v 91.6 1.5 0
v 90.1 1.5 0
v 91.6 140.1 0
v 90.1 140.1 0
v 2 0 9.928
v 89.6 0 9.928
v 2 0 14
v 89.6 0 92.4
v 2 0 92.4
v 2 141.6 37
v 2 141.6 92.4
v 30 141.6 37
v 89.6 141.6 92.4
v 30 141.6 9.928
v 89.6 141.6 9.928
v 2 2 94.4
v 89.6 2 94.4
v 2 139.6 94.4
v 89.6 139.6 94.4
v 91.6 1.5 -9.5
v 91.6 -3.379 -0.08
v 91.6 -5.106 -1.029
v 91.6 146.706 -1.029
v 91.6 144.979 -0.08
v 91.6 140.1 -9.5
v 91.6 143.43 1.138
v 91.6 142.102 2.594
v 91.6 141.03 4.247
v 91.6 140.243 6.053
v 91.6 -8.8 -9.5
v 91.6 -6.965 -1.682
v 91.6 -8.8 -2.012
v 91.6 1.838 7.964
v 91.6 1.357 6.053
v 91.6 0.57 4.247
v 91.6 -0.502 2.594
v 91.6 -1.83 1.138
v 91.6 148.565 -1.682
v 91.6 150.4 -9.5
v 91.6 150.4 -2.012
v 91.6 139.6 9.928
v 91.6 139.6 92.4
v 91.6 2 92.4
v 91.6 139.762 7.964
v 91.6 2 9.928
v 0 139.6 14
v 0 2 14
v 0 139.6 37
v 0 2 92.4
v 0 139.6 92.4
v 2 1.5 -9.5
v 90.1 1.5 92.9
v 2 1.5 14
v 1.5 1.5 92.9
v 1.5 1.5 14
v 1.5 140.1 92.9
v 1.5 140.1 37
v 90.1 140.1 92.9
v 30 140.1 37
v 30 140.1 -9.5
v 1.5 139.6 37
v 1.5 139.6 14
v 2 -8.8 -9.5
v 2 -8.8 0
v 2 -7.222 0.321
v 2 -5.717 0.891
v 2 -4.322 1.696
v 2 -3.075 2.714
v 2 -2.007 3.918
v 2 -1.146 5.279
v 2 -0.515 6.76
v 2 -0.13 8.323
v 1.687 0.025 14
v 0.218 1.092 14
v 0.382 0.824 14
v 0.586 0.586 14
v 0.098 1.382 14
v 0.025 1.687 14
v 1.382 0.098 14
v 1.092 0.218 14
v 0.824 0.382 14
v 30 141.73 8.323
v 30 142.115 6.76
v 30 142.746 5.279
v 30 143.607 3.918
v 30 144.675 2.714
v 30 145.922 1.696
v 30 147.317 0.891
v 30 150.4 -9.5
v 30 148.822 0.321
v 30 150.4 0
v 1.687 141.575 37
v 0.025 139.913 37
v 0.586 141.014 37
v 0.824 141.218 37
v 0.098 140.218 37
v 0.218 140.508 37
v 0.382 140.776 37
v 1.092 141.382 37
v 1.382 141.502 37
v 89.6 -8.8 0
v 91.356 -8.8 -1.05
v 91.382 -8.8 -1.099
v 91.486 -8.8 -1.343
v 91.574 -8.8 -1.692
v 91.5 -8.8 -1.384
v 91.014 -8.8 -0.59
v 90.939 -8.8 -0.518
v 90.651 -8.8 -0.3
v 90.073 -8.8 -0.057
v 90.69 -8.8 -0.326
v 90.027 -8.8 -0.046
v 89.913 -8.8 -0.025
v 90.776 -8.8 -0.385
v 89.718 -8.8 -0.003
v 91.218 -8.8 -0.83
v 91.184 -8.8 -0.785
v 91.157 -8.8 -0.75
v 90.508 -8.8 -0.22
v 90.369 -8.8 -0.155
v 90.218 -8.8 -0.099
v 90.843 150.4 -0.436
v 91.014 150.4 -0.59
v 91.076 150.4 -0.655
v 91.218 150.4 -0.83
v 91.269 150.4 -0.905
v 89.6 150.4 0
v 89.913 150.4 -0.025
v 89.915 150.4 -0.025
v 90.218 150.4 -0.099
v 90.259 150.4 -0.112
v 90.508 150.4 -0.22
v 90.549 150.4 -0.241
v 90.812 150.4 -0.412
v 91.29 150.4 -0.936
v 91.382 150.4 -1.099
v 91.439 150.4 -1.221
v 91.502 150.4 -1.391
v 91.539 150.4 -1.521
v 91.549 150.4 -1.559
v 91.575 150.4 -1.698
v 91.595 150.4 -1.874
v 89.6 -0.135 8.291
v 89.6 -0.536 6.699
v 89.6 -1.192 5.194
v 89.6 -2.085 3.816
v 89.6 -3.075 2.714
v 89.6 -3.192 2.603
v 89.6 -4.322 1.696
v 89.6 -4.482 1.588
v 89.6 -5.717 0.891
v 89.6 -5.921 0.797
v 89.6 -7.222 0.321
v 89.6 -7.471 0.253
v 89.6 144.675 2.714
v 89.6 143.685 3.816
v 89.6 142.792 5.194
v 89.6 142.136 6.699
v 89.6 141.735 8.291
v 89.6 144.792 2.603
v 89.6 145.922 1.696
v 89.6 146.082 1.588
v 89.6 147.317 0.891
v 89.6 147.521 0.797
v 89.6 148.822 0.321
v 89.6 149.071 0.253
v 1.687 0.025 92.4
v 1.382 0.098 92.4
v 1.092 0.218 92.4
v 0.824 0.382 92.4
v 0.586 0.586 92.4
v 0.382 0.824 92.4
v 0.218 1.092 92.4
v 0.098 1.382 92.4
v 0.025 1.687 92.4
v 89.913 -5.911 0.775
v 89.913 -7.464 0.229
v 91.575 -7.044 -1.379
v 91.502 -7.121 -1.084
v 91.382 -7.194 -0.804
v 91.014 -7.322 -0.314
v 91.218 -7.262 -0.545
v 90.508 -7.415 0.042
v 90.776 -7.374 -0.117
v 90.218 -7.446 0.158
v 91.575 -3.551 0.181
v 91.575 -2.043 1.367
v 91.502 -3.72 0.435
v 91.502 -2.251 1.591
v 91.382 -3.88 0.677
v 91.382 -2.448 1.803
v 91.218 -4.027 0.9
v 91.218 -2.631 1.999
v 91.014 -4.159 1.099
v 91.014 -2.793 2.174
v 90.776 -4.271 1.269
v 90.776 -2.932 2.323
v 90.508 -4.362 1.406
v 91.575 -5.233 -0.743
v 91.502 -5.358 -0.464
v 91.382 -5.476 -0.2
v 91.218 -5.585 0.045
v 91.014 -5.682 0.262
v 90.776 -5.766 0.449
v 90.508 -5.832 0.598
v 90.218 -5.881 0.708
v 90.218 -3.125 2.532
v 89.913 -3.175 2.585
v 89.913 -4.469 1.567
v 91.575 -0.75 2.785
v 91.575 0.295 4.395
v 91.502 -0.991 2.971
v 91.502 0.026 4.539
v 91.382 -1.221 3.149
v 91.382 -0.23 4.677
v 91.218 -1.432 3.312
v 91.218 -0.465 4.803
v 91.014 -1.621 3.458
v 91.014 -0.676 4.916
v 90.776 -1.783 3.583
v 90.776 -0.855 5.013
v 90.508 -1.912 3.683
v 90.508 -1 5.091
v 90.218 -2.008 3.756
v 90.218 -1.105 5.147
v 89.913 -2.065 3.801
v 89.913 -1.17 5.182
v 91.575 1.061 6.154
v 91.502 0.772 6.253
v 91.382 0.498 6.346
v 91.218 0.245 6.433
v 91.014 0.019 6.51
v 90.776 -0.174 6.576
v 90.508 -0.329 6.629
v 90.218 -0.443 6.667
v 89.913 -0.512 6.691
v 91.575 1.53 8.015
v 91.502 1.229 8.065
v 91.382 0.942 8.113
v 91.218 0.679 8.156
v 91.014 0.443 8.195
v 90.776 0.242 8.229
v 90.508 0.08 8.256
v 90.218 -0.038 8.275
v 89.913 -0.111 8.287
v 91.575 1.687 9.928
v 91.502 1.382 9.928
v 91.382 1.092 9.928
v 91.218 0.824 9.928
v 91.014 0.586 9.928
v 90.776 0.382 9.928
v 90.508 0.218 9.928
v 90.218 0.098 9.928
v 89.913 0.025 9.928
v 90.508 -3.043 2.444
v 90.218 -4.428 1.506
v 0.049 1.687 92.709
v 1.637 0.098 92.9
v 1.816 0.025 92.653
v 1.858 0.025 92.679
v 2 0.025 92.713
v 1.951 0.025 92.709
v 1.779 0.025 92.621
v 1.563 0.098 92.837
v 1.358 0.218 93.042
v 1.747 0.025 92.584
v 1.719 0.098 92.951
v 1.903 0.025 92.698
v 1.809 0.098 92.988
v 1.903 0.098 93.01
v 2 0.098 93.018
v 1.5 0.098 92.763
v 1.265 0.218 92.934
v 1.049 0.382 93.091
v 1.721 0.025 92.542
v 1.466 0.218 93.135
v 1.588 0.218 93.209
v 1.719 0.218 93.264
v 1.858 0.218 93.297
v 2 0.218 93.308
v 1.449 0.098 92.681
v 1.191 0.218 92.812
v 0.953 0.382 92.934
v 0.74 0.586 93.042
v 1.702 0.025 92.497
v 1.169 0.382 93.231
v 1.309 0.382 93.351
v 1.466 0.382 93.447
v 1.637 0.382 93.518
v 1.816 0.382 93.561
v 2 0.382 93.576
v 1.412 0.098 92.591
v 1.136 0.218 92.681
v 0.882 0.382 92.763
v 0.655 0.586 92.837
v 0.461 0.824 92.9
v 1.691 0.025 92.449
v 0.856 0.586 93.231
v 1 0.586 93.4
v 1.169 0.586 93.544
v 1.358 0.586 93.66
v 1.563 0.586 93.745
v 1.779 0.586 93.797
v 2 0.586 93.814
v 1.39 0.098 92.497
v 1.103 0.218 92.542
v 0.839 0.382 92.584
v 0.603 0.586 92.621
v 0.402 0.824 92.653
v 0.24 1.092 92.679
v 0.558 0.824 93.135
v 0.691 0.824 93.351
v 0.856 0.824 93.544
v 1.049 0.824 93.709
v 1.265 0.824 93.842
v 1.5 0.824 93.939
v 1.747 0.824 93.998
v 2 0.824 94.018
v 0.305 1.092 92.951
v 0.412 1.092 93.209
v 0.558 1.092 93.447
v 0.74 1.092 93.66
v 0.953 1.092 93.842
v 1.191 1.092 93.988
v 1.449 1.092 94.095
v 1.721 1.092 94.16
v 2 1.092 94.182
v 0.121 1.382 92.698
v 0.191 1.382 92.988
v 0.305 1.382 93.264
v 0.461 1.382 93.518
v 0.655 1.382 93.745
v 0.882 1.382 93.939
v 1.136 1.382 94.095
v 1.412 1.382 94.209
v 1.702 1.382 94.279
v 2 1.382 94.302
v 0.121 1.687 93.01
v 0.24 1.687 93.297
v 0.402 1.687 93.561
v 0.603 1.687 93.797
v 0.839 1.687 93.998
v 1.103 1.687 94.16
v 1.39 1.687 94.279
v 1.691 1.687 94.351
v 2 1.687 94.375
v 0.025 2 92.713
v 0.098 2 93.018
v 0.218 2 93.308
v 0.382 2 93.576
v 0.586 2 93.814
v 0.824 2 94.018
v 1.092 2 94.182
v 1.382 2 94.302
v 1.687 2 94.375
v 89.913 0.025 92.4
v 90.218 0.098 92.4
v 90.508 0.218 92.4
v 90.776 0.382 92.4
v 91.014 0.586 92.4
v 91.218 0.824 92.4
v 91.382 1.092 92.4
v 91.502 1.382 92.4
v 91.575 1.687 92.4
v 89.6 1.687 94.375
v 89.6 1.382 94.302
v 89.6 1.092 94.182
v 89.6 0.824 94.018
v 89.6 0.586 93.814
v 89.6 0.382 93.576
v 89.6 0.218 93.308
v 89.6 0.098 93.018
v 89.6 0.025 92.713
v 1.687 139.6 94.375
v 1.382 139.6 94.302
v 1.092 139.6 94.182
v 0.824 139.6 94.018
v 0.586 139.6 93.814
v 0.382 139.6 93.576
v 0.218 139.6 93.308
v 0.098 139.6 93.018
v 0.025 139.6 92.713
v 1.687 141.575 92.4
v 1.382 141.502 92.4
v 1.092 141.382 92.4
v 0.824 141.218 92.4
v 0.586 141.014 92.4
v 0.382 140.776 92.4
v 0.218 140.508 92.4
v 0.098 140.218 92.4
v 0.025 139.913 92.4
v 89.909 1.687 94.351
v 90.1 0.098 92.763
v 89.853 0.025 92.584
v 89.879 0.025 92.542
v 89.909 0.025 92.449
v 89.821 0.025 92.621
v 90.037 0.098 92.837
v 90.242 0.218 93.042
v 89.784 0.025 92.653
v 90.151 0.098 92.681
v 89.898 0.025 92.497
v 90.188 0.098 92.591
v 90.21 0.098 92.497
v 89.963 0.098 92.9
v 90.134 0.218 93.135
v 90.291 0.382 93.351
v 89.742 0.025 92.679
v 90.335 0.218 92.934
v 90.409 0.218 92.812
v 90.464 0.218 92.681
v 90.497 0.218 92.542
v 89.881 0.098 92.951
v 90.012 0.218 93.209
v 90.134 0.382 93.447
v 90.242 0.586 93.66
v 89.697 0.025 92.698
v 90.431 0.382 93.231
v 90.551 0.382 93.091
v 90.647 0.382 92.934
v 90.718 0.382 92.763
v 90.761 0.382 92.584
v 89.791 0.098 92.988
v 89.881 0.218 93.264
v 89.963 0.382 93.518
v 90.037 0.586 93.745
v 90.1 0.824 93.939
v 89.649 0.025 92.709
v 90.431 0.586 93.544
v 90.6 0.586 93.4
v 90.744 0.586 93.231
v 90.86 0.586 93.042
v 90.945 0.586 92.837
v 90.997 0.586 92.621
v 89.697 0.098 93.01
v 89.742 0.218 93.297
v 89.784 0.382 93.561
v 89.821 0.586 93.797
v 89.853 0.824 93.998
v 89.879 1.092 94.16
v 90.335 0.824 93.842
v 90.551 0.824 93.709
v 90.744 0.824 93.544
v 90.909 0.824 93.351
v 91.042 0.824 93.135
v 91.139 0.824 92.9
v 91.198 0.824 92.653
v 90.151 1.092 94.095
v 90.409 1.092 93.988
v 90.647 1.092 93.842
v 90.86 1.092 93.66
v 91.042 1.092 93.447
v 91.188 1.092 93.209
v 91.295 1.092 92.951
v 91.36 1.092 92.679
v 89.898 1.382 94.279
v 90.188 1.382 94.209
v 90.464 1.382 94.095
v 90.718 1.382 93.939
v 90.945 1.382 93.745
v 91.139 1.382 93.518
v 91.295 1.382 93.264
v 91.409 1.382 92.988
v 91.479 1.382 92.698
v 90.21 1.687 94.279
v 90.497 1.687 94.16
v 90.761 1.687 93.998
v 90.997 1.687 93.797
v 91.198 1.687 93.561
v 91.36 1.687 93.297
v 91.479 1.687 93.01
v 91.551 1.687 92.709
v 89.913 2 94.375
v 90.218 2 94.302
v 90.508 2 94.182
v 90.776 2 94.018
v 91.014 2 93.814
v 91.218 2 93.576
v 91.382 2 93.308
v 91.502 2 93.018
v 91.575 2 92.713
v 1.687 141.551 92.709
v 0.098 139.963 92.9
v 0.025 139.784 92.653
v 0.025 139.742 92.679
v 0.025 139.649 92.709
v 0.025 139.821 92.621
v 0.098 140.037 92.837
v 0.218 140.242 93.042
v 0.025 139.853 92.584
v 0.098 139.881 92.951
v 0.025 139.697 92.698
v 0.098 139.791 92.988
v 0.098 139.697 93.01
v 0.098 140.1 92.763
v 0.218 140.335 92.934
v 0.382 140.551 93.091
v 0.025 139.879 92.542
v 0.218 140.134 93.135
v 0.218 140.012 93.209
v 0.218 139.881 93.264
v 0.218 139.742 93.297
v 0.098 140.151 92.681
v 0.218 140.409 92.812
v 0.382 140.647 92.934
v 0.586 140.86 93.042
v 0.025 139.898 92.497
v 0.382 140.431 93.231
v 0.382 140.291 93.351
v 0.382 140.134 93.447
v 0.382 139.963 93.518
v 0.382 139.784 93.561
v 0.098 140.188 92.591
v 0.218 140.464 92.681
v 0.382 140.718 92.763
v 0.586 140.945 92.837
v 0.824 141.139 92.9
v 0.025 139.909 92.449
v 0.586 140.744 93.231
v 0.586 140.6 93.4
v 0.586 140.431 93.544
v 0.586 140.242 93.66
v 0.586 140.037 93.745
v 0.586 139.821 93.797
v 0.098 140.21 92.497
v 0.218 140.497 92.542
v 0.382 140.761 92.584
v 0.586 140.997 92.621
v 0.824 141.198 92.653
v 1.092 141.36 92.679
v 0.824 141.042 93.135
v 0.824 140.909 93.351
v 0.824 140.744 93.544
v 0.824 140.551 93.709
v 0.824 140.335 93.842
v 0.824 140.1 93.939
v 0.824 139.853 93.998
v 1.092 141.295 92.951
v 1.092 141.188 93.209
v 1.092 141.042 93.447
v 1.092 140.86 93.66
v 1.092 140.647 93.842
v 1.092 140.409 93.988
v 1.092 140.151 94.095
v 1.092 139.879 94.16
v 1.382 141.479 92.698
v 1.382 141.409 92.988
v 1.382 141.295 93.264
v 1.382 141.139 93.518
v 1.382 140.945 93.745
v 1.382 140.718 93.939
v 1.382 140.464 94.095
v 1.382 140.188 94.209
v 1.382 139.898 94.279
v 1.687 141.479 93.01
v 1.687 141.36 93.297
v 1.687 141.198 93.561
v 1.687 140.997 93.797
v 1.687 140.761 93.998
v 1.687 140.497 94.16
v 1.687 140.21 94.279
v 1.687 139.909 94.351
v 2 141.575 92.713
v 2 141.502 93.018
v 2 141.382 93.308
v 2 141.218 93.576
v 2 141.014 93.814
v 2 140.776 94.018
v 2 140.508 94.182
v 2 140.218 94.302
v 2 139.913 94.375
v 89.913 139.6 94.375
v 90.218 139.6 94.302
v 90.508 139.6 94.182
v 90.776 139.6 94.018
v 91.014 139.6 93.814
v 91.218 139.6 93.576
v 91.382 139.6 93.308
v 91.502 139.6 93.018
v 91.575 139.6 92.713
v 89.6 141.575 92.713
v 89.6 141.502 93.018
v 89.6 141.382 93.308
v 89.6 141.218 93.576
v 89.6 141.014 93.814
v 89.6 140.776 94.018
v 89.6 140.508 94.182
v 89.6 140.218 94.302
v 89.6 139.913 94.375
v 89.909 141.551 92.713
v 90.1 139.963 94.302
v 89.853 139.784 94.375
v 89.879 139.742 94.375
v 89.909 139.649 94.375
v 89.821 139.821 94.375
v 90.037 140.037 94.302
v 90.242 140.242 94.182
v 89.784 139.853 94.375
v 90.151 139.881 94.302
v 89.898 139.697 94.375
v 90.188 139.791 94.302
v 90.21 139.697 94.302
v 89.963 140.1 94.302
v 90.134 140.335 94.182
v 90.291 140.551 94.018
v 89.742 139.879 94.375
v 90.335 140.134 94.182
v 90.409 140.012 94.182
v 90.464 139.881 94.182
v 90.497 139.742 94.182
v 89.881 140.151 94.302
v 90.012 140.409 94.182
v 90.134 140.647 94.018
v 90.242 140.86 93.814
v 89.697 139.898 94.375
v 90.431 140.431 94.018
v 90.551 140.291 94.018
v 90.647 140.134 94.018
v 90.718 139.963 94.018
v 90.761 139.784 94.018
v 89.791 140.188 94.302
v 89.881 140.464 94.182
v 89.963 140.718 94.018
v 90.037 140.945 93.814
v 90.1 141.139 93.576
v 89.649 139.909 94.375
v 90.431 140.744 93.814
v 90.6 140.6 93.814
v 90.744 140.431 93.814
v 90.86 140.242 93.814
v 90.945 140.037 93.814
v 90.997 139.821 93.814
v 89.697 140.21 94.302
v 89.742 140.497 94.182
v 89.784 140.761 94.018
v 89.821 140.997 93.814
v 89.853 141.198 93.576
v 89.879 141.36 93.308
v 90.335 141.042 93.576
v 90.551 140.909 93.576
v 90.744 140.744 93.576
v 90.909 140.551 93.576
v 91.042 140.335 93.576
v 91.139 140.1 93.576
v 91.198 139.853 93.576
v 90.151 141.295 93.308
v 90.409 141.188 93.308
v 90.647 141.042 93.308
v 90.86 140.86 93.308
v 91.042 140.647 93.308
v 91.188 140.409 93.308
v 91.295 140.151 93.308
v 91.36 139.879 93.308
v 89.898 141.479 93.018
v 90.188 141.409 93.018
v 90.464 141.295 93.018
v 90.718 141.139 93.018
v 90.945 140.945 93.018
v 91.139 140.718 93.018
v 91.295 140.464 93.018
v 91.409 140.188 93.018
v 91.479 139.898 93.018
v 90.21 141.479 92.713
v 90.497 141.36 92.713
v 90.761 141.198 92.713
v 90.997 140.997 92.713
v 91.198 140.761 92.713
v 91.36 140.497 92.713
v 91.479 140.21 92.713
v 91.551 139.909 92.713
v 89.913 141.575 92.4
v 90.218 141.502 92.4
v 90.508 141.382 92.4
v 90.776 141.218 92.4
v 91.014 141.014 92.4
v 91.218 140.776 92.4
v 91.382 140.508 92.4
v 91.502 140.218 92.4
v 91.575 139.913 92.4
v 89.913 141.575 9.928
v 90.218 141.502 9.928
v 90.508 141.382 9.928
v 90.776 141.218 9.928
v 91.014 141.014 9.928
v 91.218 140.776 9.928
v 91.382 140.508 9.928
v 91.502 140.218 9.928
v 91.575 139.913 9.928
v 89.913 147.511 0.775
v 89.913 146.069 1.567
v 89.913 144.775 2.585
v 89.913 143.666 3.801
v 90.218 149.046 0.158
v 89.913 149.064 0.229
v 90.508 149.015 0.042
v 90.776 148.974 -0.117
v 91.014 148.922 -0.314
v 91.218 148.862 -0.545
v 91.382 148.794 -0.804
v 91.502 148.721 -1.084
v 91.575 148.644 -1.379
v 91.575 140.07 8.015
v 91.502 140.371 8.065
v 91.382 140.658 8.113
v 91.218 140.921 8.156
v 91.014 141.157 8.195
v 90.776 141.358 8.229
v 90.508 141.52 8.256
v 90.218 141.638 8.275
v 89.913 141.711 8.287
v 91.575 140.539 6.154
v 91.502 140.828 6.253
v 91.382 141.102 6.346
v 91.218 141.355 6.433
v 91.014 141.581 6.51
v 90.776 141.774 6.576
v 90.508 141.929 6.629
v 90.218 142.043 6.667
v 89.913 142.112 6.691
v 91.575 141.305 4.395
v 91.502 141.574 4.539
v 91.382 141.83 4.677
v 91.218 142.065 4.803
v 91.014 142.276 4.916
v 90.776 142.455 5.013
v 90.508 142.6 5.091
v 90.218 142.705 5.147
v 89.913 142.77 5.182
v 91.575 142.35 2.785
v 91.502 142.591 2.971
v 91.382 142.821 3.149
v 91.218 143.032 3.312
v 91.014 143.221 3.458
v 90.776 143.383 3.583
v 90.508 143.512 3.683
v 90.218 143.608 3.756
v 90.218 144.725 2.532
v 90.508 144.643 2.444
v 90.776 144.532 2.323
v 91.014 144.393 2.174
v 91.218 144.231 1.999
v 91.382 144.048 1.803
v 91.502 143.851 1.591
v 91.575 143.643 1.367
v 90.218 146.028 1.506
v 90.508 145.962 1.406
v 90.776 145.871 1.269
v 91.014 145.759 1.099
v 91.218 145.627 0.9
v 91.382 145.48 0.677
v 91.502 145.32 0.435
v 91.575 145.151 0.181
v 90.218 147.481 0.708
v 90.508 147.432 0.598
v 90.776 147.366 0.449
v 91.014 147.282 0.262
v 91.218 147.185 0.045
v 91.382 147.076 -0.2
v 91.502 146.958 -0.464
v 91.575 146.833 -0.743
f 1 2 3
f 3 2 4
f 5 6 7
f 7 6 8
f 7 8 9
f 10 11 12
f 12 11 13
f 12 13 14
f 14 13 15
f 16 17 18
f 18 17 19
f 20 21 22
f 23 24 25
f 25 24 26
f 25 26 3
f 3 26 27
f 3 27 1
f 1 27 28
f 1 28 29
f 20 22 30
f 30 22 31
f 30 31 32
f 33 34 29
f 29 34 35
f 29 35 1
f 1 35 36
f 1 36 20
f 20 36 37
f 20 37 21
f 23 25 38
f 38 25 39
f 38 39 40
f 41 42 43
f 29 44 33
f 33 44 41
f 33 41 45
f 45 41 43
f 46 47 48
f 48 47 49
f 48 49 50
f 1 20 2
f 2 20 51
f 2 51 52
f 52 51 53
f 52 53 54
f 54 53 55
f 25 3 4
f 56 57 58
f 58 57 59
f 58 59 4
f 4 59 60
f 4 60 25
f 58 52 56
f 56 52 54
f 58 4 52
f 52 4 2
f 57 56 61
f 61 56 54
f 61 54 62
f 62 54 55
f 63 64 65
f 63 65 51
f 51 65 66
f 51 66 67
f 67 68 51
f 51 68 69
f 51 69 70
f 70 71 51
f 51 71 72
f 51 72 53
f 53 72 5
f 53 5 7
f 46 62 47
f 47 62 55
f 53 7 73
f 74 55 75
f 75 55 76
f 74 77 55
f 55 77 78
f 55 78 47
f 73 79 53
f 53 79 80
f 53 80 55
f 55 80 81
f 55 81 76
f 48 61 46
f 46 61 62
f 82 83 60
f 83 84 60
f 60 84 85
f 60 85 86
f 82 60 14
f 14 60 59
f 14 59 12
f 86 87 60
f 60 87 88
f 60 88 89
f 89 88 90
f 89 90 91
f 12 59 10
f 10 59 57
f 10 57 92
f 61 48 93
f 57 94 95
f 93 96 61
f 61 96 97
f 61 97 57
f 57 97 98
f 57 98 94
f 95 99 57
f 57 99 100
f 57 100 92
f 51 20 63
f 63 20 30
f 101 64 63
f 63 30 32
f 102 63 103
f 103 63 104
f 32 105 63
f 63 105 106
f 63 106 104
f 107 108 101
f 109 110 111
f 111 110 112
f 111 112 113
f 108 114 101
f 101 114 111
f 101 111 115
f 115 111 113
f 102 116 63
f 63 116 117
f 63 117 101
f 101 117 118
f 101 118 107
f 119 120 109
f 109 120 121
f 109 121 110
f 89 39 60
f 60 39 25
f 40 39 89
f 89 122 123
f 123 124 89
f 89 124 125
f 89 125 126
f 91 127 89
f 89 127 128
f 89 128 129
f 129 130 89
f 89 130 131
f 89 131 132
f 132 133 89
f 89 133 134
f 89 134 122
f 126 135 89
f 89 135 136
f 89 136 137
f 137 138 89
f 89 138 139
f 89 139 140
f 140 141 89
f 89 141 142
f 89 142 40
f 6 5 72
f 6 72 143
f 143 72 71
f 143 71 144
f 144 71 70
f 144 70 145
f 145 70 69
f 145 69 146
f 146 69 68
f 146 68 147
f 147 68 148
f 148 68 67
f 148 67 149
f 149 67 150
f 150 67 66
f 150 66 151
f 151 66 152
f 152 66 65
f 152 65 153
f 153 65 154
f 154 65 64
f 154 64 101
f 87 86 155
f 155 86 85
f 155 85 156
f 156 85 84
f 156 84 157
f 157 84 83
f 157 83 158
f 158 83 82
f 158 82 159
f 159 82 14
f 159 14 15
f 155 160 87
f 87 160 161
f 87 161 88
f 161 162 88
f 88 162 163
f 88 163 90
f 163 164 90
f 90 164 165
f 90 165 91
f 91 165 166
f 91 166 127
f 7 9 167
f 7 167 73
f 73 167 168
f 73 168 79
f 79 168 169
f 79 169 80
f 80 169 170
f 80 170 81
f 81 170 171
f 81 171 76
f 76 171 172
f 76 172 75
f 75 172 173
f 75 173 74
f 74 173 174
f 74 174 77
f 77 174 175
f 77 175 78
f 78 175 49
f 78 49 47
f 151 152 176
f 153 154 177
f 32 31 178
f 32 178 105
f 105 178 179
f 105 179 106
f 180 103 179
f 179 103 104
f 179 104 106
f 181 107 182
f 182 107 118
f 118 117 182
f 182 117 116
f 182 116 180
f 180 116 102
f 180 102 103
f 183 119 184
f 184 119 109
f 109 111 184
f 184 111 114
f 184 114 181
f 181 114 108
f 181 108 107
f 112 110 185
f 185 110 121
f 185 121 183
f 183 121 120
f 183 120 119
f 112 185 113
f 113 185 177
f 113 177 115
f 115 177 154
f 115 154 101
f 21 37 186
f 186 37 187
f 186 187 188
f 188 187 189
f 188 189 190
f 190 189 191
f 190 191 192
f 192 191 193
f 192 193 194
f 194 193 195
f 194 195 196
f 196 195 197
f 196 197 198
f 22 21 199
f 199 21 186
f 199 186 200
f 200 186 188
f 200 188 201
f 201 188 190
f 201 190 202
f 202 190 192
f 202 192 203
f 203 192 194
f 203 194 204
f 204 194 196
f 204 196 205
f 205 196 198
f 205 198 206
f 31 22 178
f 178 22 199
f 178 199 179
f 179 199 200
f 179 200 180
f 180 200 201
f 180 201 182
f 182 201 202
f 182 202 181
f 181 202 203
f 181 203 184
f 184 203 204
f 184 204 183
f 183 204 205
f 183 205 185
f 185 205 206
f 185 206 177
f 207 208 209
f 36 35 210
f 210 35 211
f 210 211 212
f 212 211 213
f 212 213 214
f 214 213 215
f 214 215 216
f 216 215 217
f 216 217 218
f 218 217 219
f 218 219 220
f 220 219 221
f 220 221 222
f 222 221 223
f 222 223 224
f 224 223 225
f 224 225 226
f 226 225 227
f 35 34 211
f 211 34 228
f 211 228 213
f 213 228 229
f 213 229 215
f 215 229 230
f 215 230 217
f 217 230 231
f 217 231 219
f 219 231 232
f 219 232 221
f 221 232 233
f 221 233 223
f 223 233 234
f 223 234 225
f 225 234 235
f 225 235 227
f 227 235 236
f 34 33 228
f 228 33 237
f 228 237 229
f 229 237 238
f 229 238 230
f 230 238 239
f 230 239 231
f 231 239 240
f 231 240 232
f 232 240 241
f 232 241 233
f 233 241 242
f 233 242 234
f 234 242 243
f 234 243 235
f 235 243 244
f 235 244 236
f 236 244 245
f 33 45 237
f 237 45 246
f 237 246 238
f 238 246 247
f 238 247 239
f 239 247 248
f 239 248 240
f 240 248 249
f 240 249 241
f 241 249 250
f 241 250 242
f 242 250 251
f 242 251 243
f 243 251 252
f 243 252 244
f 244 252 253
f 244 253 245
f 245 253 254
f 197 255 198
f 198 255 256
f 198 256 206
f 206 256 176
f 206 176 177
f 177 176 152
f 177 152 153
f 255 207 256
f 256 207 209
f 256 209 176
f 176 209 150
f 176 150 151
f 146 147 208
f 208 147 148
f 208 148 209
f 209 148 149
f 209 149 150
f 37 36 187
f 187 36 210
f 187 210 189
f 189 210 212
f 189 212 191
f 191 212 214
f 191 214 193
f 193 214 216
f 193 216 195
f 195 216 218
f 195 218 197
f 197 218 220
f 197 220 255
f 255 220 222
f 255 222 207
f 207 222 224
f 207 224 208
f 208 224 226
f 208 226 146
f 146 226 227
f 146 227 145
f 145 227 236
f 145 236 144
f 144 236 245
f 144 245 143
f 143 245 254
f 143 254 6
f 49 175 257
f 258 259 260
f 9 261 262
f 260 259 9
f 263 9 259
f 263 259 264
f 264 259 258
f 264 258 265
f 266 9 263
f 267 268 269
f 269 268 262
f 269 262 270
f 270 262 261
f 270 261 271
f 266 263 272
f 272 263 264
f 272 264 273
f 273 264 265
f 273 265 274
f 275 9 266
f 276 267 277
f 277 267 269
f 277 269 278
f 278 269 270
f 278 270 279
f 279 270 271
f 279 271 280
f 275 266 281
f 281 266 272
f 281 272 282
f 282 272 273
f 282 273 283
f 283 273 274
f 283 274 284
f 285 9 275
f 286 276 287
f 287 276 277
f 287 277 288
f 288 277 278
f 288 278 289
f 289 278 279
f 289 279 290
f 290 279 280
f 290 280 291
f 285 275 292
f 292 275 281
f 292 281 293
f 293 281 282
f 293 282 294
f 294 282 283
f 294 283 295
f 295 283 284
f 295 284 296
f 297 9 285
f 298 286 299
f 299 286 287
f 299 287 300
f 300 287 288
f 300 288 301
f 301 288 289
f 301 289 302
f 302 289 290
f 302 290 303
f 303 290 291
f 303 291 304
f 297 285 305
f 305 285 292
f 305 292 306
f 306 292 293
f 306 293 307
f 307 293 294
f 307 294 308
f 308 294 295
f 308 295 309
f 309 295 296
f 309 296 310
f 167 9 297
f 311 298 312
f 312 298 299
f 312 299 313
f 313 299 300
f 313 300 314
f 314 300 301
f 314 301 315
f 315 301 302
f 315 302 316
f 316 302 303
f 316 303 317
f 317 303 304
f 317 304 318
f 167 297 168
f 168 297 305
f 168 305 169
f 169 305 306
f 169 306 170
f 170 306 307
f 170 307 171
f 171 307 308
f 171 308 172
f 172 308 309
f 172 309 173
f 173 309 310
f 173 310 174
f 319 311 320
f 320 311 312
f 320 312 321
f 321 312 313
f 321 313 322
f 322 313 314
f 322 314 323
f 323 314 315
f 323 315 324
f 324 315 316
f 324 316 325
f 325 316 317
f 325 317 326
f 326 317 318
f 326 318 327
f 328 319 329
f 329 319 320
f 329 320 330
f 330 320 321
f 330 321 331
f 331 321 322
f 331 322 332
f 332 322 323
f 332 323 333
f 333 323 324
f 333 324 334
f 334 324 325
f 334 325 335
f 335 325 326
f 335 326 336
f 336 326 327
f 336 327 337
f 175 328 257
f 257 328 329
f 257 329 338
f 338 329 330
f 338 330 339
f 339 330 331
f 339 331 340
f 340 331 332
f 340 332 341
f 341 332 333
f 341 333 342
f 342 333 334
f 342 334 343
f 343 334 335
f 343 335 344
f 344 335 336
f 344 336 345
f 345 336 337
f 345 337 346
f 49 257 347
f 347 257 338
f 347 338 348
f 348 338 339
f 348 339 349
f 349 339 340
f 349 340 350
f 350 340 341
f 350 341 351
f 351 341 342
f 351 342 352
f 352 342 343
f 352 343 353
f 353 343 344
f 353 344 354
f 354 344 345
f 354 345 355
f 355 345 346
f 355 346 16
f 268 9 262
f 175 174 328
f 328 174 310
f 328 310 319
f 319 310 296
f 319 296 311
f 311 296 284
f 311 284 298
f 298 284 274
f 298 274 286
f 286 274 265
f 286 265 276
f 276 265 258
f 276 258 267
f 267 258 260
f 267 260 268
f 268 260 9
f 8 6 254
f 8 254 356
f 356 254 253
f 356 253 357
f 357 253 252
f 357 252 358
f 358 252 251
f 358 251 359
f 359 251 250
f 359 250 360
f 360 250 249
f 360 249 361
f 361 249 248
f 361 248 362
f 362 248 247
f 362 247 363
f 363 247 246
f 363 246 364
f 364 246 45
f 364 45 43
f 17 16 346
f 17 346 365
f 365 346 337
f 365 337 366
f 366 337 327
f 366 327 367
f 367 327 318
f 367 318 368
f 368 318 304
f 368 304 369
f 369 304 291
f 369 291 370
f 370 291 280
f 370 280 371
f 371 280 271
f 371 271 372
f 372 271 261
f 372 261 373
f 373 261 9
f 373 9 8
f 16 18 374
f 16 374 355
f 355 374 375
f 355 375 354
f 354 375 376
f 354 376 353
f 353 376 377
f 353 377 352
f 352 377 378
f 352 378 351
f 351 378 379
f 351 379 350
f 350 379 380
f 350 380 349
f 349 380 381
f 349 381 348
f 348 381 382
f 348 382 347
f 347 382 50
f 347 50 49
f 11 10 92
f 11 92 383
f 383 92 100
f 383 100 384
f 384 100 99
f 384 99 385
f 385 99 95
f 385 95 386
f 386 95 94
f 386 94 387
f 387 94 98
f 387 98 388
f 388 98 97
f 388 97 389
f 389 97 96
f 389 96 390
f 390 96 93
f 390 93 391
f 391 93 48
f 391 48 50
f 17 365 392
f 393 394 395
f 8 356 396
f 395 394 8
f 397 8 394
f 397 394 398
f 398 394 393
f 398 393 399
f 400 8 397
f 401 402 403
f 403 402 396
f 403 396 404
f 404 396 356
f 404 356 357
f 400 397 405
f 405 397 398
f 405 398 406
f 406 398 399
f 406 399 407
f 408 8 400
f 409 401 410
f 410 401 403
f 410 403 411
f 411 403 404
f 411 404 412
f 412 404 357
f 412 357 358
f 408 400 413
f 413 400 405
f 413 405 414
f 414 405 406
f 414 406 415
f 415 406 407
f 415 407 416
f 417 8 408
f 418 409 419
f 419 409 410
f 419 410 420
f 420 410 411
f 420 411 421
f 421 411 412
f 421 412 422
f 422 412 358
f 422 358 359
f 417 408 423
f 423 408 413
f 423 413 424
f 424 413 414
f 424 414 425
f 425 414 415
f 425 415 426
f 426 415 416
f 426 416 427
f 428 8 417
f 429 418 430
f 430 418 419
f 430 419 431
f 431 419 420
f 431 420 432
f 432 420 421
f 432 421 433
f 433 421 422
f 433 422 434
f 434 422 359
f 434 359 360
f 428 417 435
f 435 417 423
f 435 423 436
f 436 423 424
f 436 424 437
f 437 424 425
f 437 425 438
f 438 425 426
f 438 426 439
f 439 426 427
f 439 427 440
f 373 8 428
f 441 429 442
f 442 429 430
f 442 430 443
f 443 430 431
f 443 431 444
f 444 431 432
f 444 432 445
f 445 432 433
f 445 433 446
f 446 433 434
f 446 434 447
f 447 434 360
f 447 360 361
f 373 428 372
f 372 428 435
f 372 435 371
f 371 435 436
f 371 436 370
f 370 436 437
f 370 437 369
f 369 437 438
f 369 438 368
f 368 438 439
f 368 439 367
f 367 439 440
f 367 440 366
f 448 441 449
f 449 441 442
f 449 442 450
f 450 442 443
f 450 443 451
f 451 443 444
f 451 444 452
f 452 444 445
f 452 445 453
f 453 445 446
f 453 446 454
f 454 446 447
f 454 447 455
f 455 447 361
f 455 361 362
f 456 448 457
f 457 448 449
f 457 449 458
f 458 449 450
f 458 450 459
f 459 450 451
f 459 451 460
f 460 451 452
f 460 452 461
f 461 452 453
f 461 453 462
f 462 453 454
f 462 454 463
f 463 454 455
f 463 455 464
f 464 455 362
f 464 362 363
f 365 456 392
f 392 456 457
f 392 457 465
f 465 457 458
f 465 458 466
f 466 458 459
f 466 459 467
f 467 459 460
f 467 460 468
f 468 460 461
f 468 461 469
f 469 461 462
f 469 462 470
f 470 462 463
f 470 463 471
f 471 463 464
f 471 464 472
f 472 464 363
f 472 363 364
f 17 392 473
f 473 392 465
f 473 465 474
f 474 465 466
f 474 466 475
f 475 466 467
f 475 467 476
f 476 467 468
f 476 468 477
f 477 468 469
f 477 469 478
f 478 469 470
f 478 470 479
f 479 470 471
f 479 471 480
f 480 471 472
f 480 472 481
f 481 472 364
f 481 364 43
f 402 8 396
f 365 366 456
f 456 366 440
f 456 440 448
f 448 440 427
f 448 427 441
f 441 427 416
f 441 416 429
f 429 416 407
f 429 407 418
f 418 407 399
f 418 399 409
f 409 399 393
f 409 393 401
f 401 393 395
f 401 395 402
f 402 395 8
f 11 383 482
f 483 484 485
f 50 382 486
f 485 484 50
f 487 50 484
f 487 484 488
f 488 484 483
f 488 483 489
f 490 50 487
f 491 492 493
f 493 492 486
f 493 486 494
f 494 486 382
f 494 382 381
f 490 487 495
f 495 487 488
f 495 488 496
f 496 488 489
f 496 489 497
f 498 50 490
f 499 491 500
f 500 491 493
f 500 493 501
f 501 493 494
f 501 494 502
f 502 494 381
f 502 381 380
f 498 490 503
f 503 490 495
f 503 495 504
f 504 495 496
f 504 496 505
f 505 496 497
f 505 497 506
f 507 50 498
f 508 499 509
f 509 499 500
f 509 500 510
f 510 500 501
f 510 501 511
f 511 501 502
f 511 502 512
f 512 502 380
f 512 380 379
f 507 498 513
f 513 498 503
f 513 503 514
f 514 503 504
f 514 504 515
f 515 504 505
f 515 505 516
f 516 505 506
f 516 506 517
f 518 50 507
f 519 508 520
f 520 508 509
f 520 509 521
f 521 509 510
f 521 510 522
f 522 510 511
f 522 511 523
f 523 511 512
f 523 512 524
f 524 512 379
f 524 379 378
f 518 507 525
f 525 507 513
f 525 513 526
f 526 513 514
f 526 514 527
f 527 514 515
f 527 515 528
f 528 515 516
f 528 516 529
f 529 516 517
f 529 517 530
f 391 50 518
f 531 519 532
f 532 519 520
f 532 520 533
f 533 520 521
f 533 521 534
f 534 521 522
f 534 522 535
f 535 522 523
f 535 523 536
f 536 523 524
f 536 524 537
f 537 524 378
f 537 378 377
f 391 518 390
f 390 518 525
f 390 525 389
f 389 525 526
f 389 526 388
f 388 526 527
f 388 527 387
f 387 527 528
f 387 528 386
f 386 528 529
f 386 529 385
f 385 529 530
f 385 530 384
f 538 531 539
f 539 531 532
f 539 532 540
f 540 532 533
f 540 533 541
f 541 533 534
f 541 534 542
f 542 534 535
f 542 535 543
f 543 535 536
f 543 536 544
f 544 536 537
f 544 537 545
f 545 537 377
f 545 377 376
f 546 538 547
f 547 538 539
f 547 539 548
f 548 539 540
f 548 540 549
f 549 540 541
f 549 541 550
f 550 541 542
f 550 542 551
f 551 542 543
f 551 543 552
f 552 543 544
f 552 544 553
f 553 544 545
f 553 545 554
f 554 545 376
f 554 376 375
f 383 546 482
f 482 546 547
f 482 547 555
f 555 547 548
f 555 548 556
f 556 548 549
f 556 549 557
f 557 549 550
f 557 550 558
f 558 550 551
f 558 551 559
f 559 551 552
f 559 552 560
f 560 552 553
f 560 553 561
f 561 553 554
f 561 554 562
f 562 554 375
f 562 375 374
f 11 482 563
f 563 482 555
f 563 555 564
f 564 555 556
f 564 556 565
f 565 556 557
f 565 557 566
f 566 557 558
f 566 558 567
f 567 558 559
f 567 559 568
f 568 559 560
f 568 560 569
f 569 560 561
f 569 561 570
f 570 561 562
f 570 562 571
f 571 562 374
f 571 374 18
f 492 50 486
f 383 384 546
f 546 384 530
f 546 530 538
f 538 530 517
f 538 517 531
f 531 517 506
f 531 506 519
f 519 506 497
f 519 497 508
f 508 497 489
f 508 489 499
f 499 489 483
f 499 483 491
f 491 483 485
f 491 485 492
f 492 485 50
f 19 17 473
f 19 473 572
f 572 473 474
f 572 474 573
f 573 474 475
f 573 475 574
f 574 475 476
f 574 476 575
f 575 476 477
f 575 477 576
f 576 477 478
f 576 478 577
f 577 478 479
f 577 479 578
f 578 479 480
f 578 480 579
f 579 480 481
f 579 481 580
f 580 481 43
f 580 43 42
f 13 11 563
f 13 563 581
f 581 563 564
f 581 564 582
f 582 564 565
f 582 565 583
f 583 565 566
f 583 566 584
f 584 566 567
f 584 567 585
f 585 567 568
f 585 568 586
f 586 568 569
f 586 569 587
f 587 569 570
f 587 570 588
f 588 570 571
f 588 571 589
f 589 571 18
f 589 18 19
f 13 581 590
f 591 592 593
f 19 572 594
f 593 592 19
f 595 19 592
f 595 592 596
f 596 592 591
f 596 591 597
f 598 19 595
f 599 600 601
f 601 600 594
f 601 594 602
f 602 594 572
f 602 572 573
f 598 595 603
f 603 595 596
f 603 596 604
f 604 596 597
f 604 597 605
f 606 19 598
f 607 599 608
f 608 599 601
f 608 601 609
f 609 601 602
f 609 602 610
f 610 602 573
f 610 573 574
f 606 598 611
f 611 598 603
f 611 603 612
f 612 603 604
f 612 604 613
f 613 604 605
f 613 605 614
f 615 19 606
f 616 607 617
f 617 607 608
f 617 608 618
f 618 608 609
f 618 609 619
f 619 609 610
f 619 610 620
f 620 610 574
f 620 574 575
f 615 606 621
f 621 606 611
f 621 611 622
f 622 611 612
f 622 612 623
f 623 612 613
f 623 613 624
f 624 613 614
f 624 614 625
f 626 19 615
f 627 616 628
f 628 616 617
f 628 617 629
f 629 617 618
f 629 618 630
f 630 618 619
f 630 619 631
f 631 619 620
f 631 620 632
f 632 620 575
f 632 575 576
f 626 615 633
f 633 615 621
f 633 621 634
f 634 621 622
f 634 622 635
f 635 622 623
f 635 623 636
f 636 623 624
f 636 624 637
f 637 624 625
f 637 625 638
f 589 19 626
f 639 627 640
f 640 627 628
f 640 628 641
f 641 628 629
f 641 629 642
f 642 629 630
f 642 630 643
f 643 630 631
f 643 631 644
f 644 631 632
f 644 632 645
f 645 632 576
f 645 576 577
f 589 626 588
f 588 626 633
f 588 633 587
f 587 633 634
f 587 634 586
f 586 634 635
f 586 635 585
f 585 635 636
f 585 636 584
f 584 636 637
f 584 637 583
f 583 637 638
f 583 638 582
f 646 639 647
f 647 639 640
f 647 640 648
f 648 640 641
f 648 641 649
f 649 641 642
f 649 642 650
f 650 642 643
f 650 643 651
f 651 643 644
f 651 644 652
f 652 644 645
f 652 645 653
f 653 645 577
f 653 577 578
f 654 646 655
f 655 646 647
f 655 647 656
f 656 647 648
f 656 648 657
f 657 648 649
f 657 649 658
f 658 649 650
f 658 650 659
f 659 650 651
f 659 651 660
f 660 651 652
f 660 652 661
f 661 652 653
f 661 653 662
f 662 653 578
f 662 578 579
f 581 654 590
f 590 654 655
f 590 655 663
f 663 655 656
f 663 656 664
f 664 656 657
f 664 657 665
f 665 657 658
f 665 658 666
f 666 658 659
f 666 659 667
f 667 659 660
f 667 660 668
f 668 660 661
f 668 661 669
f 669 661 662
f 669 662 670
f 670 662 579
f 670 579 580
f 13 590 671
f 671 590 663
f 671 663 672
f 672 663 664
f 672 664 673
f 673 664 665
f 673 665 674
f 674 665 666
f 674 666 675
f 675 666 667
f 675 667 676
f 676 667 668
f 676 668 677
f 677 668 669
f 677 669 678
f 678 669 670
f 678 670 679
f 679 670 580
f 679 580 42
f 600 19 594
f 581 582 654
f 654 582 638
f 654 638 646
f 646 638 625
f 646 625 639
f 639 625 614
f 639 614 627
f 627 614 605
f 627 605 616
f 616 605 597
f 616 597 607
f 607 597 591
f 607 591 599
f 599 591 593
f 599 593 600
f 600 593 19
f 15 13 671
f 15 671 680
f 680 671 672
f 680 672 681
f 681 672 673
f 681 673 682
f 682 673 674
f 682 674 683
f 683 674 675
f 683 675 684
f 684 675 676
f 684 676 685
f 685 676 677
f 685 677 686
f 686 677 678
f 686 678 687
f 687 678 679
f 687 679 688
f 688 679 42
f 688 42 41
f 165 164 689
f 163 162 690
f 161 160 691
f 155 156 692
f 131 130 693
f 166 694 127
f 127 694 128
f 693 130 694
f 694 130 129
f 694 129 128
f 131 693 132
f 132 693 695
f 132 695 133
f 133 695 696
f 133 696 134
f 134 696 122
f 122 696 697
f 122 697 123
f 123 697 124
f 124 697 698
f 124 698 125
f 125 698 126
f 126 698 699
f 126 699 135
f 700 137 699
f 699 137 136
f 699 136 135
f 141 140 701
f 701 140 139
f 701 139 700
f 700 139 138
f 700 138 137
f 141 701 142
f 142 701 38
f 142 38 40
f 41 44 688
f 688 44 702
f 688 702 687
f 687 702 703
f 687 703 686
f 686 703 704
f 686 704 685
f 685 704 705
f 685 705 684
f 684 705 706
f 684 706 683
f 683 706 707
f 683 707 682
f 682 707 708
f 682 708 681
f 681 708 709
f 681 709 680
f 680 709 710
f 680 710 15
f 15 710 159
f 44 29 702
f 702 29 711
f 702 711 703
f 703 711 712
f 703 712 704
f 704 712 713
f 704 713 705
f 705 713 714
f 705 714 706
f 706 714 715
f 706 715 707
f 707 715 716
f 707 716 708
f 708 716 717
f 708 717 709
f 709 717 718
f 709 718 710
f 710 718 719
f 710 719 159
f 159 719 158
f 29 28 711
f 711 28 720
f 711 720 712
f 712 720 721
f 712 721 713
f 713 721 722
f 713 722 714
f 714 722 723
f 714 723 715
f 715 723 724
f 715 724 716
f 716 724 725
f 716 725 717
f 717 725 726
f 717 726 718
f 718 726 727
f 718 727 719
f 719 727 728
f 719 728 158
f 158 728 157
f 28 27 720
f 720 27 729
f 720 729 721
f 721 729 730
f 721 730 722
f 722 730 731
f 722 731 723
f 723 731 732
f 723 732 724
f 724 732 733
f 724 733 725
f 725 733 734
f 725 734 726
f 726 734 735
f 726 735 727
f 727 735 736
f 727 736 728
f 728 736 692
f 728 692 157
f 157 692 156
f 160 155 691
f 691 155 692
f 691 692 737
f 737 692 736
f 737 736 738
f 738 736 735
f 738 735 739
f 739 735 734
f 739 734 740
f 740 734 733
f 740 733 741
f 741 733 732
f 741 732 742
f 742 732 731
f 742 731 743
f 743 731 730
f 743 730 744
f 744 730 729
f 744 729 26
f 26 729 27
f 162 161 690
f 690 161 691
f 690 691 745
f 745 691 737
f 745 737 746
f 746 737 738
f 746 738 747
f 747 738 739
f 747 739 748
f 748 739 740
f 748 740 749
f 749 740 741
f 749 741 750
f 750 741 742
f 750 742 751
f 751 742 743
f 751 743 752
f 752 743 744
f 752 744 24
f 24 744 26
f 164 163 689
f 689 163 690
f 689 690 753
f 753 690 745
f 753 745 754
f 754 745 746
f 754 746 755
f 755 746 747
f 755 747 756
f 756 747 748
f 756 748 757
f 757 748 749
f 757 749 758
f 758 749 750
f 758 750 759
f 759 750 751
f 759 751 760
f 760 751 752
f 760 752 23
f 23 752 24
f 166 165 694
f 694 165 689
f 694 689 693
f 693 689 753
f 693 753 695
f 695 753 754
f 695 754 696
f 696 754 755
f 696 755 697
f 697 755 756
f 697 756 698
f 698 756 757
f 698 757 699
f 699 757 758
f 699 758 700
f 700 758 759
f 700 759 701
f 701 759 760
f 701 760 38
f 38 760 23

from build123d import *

# Parameters (mm, degrees)
SKETCH1_W             = 141.6
SKETCH1_H             = 94.4
BOSS_EXTRUDE1_DEPTH   = 91.6
SHELL1_T              = -1.5
SKETCH2_W             = 141.6
SKETCH2_H             = 14
CUT_EXTRUDE1_DEPTH    = 2
SKETCH3_W             = 30
SKETCH3_H             = 37
CUT_EXTRUDE2_DEPTH    = 2
SKETCH4_W             = 91.6
SKETCH4_H             = 8.8
BOSS_EXTRUDE2_DEPTH   = 9.5
SKETCH4_W_2           = 61.6
BOSS_EXTRUDE2_2_DEPTH = 9.5
SKETCH5_W             = 91.6
SKETCH5_H             = 1.5
SKETCH5_W_2           = 61.6
BOSS_EXTRUDE3_DEPTH   = 9.5
FILLET1_R             = 10
SKETCH6_W             = 2
SKETCH6_H             = 10.3
CUT_EXTRUDE3_DEPTH    = 200.80510504
FILLET2_R             = 2


with BuildPart() as part:
    # Sketch1 → Boss-Extrude1 (new body)
    with BuildSketch(Plane.YZ):
        with Locations((70.8, 47.2)):
            Rectangle(SKETCH1_W, SKETCH1_H)
    extrude(amount=BOSS_EXTRUDE1_DEPTH)

    # Shell1
    shell1_openings = [part.faces().sort_by_distance(p)[0] for p in [
        (45.8, 70.8, 0),
    ]]
    offset(amount=SHELL1_T, openings=shell1_openings, kind=Kind.INTERSECTION)

    # Sketch2 → Cut-Extrude1 (cut)
    with BuildSketch(Plane(origin=(0, 0, 0), x_dir=(0, -1, 0), z_dir=(-1, 0, 0))):
        with Locations((-70.8, 7)):
            Rectangle(SKETCH2_W, SKETCH2_H)
    extrude(amount=-CUT_EXTRUDE1_DEPTH, mode=Mode.SUBTRACT)

    # Sketch3 → Cut-Extrude2 (cut)
    with BuildSketch(Plane(origin=(0, 141.6, 0), x_dir=(1, 0, 0), z_dir=(0, 1, 0))):
        with Locations((15, -18.5)):
            Rectangle(SKETCH3_W, SKETCH3_H)
    extrude(amount=-CUT_EXTRUDE2_DEPTH, mode=Mode.SUBTRACT)



with BuildPart() as body_2:
    # Sketch4 → Boss-Extrude2 (new body)
    with BuildSketch(Plane(origin=(0, 0, 0), x_dir=(1, 0, 0), z_dir=(0, 0, -1))):
        with Locations((45.8, 4.4)):
            Rectangle(SKETCH4_W, SKETCH4_H)
    extrude(amount=BOSS_EXTRUDE2_DEPTH)


with BuildPart() as body_3:
    # Sketch4 → Boss-Extrude2 2 (new body)
    with BuildSketch(Plane(origin=(0, 0, 0), x_dir=(1, 0, 0), z_dir=(0, 0, -1))):
        with Locations((60.8, -146)):
            Rectangle(SKETCH4_W_2, SKETCH4_H)
    extrude(amount=BOSS_EXTRUDE2_2_DEPTH)


with BuildPart() as part_1:
    add(part.part)

    add(body_2.part)  # Boss-Extrude3 merges body 2

    add(body_3.part)  # Boss-Extrude3 merges body 3
    # Sketch5 → Boss-Extrude3 (add)
    with BuildSketch(Plane(origin=(0, 0, 0), x_dir=(1, 0, 0), z_dir=(0, 0, -1))):
        with Locations((45.8, -0.75)):
            Rectangle(SKETCH5_W, SKETCH5_H)
        with Locations((60.8, -140.85)):
            Rectangle(SKETCH5_W_2, SKETCH5_H)
    extrude(amount=BOSS_EXTRUDE3_DEPTH)

    # Fillet1
    # the kernel refuses this fillet: 10 mm, written as the material it adds along each edge
    with BuildSketch(Plane(origin=(91.6, 0, 0), x_dir=(0, 0, 1), z_dir=(-1, 0, 0))) as fillet1_piece_1:
        with BuildLine():
            CenterArc((9.927738917, -10), FILLET1_R, 90, 83.107897421)
            Line((0, -8.8), (-0.198554778, -8.776))
            ThreePointArc((-0.198554778, -8.776), (-0.2, -4.4), (-0.2, 0))
            Line((-0.2, 0), (0, 0.2))
            Line((0, 0.2), (9.927738917, 0.2))
            Line((9.927738917, 0.2), (9.927738917, 0))
        make_face()
    extrude(amount=89.6)
    with BuildSketch(Plane(origin=(91.6, 141.6, 0), x_dir=(0, 0, 1), z_dir=(-1, 0, 0))) as fillet1_piece_2:
        with BuildLine():
            CenterArc((9.927738917, 10), FILLET1_R, 186.892102579, 83.107897421)
            Line((0, 8.8), (-0.198554778, 8.776))
            ThreePointArc((-0.198554778, 8.776), (-0.2, 4.4), (-0.2, 0))
            Line((-0.2, 0), (0, -0.2))
            Line((0, -0.2), (9.927738917, -0.2))
            Line((9.927738917, -0.2), (9.927738917, 0))
        make_face()
    extrude(amount=61.6)

    # Sketch6 → Cut-Extrude3 (cut, through all)
    with BuildSketch(Plane.XY):
        with Locations((1, -3.65)):
            Rectangle(SKETCH6_W, SKETCH6_H)
    extrude(amount=-CUT_EXTRUDE3_DEPTH, mode=Mode.SUBTRACT)

    # Fillet2
    fillet2_edges = [part_1.edges().sort_by_distance(p)[0] for p in [
        (91.6, 144.116685226, 3.294489336),
        (91.6, -2.516685226, 3.294489336),
        (0, 0, 54.2),
        (0, 141.6, 65.7),
        (91.6, 141.6, 52.163869458),
        (91.6, 0, 52.163869458),
        (0, 70.8, 94.4),
        (45.8, 0, 94.4),
        (91.6, 70.8, 94.4),
        (45.8, 141.6, 94.4),
    ]]
    fillet(fillet2_edges, radius=FILLET2_R)


solid = part_1.part
